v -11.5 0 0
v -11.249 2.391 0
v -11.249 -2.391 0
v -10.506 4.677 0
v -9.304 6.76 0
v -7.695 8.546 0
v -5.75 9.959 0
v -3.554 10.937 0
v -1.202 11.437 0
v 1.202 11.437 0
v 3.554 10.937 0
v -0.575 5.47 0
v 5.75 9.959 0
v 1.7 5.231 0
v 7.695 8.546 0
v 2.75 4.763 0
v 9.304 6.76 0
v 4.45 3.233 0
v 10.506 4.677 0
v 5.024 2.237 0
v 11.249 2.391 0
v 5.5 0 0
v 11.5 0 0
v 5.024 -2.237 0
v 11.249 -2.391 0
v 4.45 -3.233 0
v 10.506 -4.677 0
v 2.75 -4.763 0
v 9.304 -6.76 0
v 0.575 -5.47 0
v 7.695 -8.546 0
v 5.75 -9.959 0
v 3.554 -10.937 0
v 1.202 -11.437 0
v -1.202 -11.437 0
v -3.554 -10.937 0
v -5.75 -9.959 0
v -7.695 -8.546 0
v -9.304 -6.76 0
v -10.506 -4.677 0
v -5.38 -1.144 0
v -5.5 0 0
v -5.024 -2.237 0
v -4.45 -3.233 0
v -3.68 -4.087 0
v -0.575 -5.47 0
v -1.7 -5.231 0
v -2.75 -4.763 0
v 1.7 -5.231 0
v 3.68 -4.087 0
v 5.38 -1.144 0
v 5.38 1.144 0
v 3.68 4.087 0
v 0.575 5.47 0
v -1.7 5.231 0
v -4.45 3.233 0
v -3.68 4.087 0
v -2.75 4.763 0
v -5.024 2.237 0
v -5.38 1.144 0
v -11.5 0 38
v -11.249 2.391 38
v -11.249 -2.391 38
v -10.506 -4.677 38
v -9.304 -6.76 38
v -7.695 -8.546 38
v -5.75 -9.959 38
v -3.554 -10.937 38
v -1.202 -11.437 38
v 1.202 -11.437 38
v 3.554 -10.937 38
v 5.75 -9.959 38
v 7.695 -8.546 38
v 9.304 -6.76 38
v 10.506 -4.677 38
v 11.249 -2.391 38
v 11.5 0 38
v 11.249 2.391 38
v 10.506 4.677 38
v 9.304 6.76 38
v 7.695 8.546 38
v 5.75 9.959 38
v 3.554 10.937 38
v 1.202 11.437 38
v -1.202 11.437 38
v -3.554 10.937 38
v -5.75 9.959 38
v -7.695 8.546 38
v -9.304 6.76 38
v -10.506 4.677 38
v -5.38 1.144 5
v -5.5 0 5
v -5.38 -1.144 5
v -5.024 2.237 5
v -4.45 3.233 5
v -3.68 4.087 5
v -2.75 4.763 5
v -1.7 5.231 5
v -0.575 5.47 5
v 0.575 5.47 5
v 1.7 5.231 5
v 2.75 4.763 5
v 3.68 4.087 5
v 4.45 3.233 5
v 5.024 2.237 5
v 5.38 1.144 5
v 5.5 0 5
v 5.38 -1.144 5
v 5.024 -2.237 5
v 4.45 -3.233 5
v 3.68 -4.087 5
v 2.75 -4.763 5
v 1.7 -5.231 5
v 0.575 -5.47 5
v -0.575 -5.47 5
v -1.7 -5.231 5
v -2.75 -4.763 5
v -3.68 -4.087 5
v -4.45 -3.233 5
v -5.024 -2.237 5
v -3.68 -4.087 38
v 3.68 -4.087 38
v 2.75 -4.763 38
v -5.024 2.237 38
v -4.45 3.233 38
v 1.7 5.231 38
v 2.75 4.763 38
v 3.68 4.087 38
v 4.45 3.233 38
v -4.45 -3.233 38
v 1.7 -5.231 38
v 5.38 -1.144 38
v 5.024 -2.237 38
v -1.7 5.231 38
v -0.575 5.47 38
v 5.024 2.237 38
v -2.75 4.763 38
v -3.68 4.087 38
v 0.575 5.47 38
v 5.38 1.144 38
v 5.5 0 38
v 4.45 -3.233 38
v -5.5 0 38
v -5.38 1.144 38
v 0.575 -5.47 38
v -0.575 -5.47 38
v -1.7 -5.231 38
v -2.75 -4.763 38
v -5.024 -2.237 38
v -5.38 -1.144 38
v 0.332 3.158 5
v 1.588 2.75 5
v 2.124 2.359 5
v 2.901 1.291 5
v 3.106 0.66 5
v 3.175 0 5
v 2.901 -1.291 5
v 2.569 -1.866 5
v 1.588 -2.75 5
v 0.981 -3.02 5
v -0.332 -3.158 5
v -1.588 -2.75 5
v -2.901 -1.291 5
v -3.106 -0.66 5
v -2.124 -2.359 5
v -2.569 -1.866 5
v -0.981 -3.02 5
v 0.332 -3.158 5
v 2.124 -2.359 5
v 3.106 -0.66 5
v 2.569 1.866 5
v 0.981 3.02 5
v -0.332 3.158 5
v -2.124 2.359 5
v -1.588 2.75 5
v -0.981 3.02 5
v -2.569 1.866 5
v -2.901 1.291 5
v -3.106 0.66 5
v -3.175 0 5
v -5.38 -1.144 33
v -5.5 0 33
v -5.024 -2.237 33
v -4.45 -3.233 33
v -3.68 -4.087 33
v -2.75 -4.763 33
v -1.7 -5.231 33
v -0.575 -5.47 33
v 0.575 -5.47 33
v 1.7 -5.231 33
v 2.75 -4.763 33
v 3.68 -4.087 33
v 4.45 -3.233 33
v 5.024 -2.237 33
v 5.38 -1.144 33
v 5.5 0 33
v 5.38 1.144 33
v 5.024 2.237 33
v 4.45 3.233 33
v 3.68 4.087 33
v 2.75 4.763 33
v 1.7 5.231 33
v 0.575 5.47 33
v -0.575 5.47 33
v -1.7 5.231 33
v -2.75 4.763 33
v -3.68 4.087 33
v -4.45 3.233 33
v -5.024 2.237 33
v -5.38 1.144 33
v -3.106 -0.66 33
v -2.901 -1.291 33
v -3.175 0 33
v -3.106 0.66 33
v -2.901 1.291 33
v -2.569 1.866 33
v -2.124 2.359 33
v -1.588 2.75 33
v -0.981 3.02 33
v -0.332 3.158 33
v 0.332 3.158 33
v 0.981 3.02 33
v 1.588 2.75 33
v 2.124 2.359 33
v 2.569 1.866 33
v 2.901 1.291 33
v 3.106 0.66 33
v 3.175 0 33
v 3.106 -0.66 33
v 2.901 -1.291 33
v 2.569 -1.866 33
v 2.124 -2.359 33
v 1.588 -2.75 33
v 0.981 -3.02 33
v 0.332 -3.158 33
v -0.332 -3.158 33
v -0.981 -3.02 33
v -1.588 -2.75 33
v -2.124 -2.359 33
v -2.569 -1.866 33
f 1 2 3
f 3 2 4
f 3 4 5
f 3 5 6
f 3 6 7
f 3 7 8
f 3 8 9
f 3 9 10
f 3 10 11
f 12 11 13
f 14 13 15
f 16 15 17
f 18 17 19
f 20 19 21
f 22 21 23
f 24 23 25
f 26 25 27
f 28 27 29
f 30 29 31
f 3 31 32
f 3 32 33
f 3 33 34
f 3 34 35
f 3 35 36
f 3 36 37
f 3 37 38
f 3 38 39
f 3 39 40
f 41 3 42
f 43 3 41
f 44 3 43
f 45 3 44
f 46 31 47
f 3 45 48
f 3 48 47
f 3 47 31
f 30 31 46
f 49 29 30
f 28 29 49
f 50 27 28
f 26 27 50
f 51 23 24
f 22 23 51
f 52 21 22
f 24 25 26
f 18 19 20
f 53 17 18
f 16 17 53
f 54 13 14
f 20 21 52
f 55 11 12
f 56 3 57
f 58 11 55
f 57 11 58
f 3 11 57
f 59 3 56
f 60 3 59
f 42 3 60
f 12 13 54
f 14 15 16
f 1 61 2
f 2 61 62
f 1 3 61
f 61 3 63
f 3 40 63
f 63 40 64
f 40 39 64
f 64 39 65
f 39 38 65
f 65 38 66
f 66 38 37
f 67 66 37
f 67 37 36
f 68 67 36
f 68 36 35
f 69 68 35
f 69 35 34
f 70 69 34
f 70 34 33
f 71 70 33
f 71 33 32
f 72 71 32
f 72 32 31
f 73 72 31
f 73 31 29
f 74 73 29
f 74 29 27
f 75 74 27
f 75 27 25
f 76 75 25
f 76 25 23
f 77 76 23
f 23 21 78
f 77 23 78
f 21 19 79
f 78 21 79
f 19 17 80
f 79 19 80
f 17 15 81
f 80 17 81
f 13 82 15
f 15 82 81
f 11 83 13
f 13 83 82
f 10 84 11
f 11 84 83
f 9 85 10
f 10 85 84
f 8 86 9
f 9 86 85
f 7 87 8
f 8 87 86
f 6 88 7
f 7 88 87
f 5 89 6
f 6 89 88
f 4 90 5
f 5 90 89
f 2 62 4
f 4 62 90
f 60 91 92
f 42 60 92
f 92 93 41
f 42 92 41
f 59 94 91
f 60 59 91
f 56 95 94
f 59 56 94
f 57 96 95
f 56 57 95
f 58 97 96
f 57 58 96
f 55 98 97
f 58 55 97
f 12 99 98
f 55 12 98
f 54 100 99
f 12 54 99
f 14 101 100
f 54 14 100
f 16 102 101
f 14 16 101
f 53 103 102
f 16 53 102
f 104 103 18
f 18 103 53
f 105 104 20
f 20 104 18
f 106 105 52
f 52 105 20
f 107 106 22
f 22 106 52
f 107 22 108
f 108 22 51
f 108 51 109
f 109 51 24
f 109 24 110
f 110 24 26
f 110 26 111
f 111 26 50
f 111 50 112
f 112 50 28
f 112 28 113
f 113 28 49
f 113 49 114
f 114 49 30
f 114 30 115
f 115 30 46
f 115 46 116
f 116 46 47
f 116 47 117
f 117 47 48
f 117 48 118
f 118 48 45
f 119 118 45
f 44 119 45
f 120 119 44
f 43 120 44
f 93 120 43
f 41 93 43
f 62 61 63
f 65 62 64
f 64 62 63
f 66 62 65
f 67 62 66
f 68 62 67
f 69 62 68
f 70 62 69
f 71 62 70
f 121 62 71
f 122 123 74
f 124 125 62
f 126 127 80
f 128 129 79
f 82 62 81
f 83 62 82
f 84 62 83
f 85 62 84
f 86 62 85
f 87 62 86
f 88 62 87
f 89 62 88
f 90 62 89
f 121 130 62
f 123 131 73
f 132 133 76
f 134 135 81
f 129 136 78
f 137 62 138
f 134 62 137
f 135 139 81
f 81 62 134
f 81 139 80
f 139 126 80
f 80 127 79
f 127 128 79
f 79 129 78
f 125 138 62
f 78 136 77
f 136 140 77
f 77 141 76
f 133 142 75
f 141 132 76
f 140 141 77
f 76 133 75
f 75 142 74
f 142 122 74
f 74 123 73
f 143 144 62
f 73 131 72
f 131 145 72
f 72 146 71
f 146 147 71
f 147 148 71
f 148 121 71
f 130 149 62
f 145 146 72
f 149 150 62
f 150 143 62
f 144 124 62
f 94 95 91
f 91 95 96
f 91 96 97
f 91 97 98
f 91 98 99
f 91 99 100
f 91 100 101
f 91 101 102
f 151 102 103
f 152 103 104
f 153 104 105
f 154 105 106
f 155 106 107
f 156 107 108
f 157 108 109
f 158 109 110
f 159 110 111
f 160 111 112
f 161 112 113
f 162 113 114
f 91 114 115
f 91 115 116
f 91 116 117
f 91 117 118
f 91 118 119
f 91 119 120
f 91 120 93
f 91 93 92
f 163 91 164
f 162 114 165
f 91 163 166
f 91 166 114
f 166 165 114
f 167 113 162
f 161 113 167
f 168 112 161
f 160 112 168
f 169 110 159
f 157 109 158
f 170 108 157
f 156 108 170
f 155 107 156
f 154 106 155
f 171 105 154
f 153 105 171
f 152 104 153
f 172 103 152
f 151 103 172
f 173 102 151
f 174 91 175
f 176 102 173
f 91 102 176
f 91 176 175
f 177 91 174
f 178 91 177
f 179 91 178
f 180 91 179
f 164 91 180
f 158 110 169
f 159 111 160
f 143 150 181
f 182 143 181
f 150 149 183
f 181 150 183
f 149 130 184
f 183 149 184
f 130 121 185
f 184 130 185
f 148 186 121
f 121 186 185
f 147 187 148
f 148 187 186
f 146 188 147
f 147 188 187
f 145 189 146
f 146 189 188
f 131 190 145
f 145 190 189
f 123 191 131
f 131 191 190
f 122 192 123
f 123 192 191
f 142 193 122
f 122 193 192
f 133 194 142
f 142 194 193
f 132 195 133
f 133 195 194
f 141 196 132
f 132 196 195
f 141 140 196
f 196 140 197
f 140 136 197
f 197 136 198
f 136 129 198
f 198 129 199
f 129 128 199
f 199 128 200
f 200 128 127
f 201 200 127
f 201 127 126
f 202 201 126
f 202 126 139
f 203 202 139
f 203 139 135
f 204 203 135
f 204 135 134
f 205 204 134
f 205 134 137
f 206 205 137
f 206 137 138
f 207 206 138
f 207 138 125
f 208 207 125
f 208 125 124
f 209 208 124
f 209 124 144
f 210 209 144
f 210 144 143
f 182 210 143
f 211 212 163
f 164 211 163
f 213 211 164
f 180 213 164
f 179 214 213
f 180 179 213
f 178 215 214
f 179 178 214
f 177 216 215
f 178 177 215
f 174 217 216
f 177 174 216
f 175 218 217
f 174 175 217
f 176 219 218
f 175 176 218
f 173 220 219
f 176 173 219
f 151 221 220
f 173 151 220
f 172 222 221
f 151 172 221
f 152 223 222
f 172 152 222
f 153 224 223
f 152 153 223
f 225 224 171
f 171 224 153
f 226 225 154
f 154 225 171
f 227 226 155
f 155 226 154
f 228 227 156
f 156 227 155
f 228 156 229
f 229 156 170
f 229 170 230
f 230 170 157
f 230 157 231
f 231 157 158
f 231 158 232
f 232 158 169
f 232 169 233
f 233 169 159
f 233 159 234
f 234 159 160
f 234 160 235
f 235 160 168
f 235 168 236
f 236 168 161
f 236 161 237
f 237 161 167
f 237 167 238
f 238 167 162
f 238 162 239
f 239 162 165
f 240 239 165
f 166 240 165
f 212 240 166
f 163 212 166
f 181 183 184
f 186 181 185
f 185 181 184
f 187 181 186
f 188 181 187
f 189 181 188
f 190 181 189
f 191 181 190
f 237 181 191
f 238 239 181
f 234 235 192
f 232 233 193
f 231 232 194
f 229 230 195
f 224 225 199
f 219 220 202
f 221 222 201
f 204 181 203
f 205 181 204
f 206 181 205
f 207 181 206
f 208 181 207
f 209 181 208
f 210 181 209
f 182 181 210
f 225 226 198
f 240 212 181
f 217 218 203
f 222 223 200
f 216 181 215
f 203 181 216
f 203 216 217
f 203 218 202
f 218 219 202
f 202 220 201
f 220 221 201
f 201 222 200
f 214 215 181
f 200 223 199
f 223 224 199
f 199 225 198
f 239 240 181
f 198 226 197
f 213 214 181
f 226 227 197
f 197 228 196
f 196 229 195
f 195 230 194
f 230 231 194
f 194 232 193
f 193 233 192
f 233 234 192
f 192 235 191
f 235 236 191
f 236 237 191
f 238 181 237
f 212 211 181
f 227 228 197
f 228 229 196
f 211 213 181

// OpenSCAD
module roller() {

	difference() 
	{
		union() 
		color("black")
		{
		cylinder(h=38, d=23, $fs=.01); //supply corner roller
		}
		union()
		color("black")
		{	
		cylinder(h=80, d=6.35, center = true, $fs=.01);
		cylinder(h=10, d=11, center = true, $fs=.01);
		translate([0,0,38]) 
		cylinder(h=10, d=11, center = true, $fs=.01);
		}
	}
}

roller();
